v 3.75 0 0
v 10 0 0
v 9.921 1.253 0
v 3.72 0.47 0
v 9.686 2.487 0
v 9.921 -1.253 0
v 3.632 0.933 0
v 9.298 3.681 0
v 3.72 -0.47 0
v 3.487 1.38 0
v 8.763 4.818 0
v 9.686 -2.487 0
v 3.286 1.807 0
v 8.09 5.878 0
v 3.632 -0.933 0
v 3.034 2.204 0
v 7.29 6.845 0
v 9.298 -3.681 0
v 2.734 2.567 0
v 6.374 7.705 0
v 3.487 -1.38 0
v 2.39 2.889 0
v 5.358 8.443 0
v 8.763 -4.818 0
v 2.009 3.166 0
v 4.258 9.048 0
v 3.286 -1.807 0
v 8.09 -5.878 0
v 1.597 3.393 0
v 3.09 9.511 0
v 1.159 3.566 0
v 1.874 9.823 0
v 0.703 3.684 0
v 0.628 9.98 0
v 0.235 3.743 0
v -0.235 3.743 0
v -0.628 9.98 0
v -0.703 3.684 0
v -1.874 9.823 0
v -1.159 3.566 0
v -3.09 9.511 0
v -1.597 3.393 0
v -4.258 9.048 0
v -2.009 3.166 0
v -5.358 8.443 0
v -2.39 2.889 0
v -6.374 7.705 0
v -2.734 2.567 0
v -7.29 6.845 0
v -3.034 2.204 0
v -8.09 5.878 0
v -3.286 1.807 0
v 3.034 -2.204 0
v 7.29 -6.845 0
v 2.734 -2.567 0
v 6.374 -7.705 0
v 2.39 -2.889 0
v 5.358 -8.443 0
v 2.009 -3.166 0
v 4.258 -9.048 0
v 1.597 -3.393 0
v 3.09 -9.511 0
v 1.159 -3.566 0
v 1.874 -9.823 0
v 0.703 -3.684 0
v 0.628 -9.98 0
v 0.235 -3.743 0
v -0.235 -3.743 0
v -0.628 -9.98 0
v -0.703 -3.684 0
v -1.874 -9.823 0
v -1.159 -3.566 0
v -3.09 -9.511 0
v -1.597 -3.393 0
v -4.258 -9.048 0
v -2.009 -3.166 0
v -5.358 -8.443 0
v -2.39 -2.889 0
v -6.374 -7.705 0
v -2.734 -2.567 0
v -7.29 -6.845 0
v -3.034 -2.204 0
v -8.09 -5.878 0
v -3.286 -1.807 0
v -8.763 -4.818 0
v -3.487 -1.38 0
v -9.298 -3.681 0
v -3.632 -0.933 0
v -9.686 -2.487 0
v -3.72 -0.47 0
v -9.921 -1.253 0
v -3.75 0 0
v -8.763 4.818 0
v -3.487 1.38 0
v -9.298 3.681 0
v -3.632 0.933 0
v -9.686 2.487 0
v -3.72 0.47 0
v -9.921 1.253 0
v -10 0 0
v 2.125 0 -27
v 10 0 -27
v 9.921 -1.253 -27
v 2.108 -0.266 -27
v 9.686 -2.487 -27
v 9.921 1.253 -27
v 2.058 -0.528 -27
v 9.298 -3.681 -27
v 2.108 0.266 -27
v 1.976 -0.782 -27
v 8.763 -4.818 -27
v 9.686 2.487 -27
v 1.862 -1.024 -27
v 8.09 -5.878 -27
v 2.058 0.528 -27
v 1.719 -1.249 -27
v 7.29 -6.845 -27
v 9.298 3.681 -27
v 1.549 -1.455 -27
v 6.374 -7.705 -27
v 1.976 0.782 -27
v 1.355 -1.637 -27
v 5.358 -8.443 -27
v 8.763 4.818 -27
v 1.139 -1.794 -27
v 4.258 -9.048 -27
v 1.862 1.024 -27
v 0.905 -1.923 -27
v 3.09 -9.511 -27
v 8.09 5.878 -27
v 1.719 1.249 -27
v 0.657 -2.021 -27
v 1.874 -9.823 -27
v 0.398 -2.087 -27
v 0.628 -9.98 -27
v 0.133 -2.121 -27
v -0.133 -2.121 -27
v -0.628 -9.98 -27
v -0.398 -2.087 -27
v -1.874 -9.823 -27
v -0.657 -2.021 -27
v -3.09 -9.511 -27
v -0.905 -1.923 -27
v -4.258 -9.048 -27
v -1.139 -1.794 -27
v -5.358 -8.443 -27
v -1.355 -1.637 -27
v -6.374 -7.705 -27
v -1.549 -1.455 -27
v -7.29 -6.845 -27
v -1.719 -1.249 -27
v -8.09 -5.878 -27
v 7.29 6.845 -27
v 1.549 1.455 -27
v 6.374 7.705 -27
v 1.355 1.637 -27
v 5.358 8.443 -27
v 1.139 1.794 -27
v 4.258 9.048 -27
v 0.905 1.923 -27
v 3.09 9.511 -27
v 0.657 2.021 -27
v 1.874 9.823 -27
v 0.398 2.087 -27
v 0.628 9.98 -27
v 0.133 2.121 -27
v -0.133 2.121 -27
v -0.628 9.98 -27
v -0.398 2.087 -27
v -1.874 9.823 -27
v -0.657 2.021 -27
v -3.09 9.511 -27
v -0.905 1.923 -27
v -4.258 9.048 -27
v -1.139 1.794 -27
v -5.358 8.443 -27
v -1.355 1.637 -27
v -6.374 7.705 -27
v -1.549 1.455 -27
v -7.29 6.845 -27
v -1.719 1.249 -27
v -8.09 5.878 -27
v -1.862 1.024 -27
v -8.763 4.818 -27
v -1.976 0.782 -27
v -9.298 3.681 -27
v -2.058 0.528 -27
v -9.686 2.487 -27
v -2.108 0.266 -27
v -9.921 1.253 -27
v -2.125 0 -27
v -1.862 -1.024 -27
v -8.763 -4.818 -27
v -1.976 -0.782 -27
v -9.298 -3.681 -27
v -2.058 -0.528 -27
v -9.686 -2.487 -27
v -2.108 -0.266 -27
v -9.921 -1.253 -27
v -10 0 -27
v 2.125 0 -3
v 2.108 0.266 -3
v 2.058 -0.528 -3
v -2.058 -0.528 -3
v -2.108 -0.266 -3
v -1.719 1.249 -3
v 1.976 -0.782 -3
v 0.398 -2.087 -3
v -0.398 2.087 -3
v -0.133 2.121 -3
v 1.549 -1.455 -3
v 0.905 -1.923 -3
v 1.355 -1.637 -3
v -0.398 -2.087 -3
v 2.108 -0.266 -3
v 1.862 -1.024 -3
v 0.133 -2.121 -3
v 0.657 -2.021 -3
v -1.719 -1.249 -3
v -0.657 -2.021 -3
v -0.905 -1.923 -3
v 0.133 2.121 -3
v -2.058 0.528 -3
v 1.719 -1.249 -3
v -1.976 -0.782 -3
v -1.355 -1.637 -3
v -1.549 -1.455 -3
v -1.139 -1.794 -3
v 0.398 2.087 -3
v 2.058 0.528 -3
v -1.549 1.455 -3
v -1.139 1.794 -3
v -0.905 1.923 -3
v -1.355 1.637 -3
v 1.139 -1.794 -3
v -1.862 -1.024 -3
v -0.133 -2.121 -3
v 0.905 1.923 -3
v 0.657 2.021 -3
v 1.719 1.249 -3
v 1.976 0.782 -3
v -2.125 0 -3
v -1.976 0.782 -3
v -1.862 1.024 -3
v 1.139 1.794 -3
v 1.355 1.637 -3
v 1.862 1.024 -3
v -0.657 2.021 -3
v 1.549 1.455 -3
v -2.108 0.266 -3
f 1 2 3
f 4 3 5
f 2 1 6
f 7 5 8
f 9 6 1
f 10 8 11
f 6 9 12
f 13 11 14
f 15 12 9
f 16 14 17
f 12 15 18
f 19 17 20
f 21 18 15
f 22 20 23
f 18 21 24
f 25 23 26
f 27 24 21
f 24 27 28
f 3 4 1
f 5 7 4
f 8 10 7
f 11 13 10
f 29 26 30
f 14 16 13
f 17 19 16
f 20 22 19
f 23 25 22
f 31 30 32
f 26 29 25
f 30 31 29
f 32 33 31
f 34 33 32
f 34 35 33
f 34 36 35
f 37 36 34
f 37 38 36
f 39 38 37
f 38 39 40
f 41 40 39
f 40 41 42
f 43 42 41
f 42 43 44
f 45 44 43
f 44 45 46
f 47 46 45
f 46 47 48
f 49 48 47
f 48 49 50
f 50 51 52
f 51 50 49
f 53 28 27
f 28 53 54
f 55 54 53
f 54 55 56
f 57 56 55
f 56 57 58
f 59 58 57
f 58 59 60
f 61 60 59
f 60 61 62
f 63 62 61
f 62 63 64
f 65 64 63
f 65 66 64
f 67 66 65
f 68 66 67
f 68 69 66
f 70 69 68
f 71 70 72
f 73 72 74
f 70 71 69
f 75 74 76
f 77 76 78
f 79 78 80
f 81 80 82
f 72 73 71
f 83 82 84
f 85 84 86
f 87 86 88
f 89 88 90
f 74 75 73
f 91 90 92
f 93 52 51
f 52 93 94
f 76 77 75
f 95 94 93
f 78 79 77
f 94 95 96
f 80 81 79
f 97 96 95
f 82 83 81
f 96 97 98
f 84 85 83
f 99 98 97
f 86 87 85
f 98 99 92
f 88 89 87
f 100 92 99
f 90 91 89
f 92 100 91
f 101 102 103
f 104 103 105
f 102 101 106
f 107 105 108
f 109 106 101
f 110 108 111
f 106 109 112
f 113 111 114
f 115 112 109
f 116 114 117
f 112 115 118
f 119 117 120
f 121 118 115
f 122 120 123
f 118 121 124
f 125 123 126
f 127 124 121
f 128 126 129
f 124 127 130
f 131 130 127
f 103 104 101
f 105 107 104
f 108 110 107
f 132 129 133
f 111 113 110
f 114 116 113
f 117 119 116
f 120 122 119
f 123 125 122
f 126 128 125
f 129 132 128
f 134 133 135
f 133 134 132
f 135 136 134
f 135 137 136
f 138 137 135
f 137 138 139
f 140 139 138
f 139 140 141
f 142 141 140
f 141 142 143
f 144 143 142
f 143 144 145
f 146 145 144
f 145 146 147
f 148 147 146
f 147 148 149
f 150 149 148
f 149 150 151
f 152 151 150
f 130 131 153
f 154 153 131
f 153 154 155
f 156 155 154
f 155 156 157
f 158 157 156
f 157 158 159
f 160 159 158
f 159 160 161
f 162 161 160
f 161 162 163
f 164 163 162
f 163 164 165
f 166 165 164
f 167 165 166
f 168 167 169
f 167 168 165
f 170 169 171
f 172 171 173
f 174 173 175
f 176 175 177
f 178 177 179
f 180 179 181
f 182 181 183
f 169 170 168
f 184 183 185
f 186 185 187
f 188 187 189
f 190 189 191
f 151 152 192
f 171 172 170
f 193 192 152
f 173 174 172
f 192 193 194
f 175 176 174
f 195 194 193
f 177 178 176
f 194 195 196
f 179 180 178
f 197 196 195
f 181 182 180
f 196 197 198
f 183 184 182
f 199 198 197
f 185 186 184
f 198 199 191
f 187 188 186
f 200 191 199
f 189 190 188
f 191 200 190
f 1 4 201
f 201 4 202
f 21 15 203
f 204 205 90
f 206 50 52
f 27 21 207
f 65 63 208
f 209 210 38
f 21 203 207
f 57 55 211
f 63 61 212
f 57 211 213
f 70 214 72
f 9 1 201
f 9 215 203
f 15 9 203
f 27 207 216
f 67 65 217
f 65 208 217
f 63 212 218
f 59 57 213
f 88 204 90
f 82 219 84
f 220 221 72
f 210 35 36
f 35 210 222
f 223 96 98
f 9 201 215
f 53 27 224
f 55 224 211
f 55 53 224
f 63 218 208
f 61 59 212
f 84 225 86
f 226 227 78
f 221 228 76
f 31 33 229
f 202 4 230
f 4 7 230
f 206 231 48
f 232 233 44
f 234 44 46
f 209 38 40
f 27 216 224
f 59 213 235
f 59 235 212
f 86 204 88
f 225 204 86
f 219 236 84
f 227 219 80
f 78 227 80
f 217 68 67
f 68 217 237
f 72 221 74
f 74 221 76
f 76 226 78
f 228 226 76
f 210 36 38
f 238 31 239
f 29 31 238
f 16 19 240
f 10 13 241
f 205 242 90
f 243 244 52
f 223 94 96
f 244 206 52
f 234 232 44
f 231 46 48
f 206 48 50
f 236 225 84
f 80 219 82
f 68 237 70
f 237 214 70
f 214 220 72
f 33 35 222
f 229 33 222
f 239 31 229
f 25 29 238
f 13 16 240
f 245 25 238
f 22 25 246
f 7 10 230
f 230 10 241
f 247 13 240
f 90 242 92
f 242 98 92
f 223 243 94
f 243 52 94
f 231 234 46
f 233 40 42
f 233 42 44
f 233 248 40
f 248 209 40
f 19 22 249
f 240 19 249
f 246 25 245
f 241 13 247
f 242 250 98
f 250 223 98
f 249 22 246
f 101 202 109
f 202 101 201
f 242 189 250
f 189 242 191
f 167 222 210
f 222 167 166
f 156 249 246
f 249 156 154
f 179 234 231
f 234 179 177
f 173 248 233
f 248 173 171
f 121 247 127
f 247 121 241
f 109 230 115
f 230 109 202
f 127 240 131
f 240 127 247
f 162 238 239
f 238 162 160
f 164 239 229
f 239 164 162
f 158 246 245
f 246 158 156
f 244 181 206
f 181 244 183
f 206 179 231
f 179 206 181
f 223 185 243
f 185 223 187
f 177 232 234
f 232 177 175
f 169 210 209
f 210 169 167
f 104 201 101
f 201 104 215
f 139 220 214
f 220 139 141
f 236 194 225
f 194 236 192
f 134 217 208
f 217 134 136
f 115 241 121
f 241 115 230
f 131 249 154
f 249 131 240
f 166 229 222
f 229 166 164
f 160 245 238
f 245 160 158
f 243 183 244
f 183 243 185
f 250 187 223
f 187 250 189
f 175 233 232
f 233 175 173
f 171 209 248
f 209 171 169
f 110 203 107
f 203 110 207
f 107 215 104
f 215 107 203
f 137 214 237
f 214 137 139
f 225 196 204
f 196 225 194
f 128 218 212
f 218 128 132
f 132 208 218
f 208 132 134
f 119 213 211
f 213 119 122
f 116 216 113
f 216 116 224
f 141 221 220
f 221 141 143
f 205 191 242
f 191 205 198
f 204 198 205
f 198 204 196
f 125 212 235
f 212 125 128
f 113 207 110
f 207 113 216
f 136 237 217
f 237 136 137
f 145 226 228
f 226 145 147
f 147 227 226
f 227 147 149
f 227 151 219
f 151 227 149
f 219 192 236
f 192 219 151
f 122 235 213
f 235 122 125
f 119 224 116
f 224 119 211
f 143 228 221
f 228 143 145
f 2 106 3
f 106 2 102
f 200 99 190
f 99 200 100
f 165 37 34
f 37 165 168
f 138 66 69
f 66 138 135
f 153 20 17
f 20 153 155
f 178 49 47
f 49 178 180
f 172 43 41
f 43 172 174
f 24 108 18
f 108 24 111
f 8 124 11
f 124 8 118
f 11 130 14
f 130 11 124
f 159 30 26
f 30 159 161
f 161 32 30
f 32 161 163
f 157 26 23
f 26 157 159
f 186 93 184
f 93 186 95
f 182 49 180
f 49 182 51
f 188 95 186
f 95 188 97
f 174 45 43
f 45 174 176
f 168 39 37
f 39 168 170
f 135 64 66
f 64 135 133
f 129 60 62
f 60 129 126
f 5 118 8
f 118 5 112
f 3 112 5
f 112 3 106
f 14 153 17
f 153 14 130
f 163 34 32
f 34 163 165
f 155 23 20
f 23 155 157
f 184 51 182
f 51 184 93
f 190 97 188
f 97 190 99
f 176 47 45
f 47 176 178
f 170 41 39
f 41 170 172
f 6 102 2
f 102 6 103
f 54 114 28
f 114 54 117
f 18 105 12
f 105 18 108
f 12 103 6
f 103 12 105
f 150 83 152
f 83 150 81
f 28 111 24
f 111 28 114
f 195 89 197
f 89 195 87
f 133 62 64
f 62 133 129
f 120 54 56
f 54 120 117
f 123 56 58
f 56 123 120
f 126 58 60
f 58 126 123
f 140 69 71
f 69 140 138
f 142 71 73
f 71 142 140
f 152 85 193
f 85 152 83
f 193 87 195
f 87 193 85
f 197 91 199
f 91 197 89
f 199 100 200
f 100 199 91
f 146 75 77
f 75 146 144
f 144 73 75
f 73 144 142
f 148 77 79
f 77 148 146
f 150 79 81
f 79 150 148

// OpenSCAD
$fn = 50;


difference() {
	union() {
		translate(v = [0, 0, -27.0000000000]) {
			cylinder(h = 27, r = 10.0000000000);
		}
		cylinder(h = 0, r = 20.0000000000);
	}
	union() {
		translate(v = [0, 0, 0]) {
			rotate(a = [0, 0, 0]) {
				difference() {
					union() {
						#translate(v = [0, 0, -27.0000000000]) {
							cylinder(h = 27, r = 2.0000000000);
						}
						#translate(v = [0, 0, -3]) {
							cylinder(h = 3, r1 = 2.1250000000, r2 = 3.7500000000);
						}
						#translate(v = [0, 0, -27.0000000000]) {
							cylinder(h = 27, r = 2.1250000000);
						}
						#translate(v = [0, 0, -27.0000000000]) {
							cylinder(h = 27, r = 2.0000000000);
						}
					}
					union();
				}
			}
		}
	}
}
